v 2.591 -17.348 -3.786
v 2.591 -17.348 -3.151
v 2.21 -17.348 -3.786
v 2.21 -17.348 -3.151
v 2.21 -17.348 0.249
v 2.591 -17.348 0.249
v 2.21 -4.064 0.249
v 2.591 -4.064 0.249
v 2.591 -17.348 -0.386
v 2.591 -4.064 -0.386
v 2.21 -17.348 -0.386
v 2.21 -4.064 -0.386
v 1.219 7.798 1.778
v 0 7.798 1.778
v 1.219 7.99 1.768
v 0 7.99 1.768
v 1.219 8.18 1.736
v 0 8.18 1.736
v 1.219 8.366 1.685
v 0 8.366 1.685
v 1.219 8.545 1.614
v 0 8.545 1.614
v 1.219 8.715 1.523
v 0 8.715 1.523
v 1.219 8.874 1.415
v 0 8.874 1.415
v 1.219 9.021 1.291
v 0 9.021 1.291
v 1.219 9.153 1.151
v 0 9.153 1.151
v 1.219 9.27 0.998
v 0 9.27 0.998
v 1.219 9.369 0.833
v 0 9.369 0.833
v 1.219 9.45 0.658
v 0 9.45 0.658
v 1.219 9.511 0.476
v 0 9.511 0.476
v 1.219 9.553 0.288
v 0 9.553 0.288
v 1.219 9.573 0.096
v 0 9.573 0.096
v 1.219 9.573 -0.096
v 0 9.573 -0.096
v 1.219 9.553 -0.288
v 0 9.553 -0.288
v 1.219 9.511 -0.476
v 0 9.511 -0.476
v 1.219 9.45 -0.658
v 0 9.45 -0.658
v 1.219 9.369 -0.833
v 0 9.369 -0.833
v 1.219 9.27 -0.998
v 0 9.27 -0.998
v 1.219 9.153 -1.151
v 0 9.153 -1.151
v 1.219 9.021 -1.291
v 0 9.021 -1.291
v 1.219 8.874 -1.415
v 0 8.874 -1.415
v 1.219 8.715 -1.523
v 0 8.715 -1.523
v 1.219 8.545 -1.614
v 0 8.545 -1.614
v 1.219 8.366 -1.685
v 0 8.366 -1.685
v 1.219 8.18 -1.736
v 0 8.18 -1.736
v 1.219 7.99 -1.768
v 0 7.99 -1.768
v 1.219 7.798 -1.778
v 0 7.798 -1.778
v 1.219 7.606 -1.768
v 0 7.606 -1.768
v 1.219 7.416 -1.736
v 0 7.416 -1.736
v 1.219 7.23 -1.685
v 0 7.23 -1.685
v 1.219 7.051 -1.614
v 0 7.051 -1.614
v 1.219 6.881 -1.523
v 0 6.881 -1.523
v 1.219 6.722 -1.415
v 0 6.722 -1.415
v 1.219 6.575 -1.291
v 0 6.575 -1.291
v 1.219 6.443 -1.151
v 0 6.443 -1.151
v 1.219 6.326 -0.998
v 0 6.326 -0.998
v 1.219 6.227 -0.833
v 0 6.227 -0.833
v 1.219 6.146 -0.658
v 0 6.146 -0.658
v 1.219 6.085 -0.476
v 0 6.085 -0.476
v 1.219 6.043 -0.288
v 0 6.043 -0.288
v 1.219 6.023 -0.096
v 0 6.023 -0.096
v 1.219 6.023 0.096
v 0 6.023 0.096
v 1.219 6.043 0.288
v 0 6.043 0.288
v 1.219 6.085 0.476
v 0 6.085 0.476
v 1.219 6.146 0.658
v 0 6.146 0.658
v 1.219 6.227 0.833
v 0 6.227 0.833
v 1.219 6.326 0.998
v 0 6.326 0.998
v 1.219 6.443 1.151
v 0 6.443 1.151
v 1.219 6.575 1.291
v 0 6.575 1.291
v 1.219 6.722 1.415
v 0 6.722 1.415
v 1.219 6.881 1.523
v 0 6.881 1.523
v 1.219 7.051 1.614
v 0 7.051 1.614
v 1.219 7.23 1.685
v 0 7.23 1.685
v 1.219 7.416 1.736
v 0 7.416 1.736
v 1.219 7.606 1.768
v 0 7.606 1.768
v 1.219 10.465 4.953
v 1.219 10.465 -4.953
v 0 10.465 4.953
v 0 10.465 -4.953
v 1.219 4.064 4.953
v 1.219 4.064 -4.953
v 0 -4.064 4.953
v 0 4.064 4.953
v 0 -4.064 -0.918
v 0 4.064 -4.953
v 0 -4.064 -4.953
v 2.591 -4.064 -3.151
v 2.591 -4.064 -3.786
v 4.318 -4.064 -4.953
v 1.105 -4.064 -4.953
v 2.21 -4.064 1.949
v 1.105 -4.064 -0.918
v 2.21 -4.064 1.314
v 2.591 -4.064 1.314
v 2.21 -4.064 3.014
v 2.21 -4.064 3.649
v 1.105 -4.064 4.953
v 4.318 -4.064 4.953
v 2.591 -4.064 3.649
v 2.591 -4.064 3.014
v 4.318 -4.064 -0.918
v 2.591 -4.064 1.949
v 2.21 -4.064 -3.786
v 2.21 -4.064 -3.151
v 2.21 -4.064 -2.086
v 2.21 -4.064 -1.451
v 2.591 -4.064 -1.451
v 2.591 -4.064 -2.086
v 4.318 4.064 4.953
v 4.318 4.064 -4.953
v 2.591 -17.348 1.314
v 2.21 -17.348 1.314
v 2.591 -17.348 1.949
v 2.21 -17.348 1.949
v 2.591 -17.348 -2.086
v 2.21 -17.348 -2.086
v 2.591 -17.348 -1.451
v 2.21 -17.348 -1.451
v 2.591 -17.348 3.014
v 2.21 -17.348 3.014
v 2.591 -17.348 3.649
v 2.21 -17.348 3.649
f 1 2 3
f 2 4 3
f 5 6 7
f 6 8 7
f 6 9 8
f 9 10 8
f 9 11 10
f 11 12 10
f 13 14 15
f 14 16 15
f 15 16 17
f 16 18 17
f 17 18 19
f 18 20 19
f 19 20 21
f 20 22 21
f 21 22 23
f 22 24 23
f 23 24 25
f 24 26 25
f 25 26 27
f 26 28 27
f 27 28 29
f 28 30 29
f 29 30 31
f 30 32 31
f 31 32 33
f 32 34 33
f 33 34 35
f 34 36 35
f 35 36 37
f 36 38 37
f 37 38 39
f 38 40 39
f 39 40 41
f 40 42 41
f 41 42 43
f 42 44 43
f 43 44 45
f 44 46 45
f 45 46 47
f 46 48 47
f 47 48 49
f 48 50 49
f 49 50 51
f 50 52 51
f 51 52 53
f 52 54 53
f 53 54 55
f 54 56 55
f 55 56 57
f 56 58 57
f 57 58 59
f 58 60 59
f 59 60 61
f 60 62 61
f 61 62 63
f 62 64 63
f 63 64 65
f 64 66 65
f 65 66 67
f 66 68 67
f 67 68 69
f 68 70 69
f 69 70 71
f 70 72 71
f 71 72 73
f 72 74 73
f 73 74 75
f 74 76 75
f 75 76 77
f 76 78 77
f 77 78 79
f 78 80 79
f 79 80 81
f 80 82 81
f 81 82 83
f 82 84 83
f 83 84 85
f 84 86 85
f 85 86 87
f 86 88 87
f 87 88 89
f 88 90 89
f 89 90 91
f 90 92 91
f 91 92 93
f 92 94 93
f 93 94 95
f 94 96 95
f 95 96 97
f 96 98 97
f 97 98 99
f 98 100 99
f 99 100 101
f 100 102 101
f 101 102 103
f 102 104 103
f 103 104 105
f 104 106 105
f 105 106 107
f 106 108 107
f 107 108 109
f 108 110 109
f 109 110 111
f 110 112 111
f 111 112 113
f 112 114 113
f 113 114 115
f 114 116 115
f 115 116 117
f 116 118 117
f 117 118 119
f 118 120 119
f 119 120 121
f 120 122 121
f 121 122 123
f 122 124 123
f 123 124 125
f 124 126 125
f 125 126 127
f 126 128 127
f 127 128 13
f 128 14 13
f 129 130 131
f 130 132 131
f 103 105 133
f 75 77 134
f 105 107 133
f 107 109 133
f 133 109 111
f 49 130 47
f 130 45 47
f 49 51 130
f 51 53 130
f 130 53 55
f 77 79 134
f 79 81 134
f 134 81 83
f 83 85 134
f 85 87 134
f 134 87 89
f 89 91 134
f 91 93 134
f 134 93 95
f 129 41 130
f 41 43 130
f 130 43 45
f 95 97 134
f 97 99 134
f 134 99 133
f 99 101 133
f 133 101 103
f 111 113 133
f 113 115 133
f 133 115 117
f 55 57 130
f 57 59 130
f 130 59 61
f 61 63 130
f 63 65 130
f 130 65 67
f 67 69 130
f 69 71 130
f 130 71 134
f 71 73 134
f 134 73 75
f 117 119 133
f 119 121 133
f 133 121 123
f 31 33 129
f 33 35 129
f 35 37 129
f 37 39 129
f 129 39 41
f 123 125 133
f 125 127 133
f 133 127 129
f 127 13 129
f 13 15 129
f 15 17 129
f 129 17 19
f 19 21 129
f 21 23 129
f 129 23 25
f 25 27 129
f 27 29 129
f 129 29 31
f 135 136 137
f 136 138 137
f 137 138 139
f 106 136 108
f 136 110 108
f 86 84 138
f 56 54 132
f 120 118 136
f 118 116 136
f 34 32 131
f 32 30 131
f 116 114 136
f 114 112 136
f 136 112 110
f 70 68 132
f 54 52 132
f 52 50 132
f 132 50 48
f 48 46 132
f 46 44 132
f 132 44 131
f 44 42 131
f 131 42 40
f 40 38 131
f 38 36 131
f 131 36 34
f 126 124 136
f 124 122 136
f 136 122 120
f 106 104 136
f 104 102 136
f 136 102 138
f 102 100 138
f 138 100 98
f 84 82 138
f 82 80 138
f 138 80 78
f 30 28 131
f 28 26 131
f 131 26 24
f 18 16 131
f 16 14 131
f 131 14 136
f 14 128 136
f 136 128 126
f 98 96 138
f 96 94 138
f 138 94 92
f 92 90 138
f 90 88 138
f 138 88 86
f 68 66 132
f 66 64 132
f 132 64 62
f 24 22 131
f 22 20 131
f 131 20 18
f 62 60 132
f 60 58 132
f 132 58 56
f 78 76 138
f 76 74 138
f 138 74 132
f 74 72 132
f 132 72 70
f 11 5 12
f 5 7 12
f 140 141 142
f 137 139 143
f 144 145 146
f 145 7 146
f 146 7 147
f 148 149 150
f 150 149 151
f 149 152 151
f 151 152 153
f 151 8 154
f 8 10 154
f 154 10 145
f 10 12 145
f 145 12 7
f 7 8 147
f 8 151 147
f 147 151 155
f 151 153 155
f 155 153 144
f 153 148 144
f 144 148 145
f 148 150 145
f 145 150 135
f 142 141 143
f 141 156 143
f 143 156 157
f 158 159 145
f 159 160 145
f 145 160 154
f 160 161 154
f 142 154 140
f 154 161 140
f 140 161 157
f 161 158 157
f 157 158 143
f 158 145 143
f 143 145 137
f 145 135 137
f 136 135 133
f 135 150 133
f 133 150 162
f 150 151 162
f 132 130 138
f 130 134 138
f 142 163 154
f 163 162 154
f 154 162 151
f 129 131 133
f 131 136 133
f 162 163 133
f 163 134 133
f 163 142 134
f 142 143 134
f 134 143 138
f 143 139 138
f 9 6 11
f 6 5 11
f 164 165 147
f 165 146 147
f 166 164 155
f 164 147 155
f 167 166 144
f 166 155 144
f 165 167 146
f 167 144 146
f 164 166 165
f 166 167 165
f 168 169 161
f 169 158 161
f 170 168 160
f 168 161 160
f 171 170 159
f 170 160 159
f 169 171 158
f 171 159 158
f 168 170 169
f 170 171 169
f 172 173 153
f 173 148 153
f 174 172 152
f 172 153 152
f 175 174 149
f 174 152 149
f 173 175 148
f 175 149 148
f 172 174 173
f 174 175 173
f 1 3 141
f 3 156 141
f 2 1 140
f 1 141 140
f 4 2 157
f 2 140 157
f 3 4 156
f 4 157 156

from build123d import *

# Parameters (mm, degrees)
SKETCH1_W           = 9.906
SKETCH1_H           = 8.128
BOSS_EXTRUDE1_DEPTH = 4.318
SKETCH2_W           = 9.906
SKETCH2_H           = 6.401
SKETCH2_R           = 1.778
BOSS_EXTRUDE3_DEPTH = 1.219
BOSS_EXTRUDE4_DEPTH = 13.284


with BuildPart() as part:
    # Sketch1 → Boss-Extrude1 (new body)
    with BuildSketch(Plane(origin=(0, 0, 0), x_dir=(0, 0, -1), z_dir=(1, 0, 0))):
        Rectangle(SKETCH1_W, SKETCH1_H)
    extrude(amount=BOSS_EXTRUDE1_DEPTH)

    # Sketch2 → Boss-Extrude3 (add)
    with BuildSketch(Plane(origin=(0, 0, 0), x_dir=(0, 0, -1), z_dir=(1, 0, 0))):
        with Locations((0, 7.2645)):
            Rectangle(SKETCH2_W, SKETCH2_H)
        with Locations((0, 7.798)):
            Circle(SKETCH2_R, mode=Mode.SUBTRACT)
    extrude(amount=BOSS_EXTRUDE3_DEPTH)

    # Sketch3 → Boss-Extrude4 (add)
    with BuildSketch(Plane(origin=(0, -4.064, 0), x_dir=(-1, 0, 0), z_dir=(0, -1, 0))):
        Polygon((-2.591, -1.949316438), (-2.591, -1.314316438), (-2.21, -1.314316438), (-2.21, -1.631816438), (-2.21, -1.949316438), align=None)
        Polygon((-2.21, 0.068183562), (-2.21, -0.249316438), (-2.591, -0.249316438), (-2.591, 0.385683562), (-2.21, 0.385683562), align=None)
        Polygon((-2.591, -3.649316438), (-2.591, -3.014316438), (-2.21, -3.014316438), (-2.21, -3.331816438), (-2.21, -3.649316438), align=None)
        Polygon((-2.591, 1.450683562), (-2.591, 2.085683562), (-2.21, 2.085683562), (-2.21, 1.768183562), (-2.21, 1.450683562), align=None)
        Polygon((-2.591, 3.150683562), (-2.591, 3.785683562), (-2.21, 3.785683562), (-2.21, 3.468183562), (-2.21, 3.150683562), align=None)
    extrude(amount=BOSS_EXTRUDE4_DEPTH)


solid = part.part
